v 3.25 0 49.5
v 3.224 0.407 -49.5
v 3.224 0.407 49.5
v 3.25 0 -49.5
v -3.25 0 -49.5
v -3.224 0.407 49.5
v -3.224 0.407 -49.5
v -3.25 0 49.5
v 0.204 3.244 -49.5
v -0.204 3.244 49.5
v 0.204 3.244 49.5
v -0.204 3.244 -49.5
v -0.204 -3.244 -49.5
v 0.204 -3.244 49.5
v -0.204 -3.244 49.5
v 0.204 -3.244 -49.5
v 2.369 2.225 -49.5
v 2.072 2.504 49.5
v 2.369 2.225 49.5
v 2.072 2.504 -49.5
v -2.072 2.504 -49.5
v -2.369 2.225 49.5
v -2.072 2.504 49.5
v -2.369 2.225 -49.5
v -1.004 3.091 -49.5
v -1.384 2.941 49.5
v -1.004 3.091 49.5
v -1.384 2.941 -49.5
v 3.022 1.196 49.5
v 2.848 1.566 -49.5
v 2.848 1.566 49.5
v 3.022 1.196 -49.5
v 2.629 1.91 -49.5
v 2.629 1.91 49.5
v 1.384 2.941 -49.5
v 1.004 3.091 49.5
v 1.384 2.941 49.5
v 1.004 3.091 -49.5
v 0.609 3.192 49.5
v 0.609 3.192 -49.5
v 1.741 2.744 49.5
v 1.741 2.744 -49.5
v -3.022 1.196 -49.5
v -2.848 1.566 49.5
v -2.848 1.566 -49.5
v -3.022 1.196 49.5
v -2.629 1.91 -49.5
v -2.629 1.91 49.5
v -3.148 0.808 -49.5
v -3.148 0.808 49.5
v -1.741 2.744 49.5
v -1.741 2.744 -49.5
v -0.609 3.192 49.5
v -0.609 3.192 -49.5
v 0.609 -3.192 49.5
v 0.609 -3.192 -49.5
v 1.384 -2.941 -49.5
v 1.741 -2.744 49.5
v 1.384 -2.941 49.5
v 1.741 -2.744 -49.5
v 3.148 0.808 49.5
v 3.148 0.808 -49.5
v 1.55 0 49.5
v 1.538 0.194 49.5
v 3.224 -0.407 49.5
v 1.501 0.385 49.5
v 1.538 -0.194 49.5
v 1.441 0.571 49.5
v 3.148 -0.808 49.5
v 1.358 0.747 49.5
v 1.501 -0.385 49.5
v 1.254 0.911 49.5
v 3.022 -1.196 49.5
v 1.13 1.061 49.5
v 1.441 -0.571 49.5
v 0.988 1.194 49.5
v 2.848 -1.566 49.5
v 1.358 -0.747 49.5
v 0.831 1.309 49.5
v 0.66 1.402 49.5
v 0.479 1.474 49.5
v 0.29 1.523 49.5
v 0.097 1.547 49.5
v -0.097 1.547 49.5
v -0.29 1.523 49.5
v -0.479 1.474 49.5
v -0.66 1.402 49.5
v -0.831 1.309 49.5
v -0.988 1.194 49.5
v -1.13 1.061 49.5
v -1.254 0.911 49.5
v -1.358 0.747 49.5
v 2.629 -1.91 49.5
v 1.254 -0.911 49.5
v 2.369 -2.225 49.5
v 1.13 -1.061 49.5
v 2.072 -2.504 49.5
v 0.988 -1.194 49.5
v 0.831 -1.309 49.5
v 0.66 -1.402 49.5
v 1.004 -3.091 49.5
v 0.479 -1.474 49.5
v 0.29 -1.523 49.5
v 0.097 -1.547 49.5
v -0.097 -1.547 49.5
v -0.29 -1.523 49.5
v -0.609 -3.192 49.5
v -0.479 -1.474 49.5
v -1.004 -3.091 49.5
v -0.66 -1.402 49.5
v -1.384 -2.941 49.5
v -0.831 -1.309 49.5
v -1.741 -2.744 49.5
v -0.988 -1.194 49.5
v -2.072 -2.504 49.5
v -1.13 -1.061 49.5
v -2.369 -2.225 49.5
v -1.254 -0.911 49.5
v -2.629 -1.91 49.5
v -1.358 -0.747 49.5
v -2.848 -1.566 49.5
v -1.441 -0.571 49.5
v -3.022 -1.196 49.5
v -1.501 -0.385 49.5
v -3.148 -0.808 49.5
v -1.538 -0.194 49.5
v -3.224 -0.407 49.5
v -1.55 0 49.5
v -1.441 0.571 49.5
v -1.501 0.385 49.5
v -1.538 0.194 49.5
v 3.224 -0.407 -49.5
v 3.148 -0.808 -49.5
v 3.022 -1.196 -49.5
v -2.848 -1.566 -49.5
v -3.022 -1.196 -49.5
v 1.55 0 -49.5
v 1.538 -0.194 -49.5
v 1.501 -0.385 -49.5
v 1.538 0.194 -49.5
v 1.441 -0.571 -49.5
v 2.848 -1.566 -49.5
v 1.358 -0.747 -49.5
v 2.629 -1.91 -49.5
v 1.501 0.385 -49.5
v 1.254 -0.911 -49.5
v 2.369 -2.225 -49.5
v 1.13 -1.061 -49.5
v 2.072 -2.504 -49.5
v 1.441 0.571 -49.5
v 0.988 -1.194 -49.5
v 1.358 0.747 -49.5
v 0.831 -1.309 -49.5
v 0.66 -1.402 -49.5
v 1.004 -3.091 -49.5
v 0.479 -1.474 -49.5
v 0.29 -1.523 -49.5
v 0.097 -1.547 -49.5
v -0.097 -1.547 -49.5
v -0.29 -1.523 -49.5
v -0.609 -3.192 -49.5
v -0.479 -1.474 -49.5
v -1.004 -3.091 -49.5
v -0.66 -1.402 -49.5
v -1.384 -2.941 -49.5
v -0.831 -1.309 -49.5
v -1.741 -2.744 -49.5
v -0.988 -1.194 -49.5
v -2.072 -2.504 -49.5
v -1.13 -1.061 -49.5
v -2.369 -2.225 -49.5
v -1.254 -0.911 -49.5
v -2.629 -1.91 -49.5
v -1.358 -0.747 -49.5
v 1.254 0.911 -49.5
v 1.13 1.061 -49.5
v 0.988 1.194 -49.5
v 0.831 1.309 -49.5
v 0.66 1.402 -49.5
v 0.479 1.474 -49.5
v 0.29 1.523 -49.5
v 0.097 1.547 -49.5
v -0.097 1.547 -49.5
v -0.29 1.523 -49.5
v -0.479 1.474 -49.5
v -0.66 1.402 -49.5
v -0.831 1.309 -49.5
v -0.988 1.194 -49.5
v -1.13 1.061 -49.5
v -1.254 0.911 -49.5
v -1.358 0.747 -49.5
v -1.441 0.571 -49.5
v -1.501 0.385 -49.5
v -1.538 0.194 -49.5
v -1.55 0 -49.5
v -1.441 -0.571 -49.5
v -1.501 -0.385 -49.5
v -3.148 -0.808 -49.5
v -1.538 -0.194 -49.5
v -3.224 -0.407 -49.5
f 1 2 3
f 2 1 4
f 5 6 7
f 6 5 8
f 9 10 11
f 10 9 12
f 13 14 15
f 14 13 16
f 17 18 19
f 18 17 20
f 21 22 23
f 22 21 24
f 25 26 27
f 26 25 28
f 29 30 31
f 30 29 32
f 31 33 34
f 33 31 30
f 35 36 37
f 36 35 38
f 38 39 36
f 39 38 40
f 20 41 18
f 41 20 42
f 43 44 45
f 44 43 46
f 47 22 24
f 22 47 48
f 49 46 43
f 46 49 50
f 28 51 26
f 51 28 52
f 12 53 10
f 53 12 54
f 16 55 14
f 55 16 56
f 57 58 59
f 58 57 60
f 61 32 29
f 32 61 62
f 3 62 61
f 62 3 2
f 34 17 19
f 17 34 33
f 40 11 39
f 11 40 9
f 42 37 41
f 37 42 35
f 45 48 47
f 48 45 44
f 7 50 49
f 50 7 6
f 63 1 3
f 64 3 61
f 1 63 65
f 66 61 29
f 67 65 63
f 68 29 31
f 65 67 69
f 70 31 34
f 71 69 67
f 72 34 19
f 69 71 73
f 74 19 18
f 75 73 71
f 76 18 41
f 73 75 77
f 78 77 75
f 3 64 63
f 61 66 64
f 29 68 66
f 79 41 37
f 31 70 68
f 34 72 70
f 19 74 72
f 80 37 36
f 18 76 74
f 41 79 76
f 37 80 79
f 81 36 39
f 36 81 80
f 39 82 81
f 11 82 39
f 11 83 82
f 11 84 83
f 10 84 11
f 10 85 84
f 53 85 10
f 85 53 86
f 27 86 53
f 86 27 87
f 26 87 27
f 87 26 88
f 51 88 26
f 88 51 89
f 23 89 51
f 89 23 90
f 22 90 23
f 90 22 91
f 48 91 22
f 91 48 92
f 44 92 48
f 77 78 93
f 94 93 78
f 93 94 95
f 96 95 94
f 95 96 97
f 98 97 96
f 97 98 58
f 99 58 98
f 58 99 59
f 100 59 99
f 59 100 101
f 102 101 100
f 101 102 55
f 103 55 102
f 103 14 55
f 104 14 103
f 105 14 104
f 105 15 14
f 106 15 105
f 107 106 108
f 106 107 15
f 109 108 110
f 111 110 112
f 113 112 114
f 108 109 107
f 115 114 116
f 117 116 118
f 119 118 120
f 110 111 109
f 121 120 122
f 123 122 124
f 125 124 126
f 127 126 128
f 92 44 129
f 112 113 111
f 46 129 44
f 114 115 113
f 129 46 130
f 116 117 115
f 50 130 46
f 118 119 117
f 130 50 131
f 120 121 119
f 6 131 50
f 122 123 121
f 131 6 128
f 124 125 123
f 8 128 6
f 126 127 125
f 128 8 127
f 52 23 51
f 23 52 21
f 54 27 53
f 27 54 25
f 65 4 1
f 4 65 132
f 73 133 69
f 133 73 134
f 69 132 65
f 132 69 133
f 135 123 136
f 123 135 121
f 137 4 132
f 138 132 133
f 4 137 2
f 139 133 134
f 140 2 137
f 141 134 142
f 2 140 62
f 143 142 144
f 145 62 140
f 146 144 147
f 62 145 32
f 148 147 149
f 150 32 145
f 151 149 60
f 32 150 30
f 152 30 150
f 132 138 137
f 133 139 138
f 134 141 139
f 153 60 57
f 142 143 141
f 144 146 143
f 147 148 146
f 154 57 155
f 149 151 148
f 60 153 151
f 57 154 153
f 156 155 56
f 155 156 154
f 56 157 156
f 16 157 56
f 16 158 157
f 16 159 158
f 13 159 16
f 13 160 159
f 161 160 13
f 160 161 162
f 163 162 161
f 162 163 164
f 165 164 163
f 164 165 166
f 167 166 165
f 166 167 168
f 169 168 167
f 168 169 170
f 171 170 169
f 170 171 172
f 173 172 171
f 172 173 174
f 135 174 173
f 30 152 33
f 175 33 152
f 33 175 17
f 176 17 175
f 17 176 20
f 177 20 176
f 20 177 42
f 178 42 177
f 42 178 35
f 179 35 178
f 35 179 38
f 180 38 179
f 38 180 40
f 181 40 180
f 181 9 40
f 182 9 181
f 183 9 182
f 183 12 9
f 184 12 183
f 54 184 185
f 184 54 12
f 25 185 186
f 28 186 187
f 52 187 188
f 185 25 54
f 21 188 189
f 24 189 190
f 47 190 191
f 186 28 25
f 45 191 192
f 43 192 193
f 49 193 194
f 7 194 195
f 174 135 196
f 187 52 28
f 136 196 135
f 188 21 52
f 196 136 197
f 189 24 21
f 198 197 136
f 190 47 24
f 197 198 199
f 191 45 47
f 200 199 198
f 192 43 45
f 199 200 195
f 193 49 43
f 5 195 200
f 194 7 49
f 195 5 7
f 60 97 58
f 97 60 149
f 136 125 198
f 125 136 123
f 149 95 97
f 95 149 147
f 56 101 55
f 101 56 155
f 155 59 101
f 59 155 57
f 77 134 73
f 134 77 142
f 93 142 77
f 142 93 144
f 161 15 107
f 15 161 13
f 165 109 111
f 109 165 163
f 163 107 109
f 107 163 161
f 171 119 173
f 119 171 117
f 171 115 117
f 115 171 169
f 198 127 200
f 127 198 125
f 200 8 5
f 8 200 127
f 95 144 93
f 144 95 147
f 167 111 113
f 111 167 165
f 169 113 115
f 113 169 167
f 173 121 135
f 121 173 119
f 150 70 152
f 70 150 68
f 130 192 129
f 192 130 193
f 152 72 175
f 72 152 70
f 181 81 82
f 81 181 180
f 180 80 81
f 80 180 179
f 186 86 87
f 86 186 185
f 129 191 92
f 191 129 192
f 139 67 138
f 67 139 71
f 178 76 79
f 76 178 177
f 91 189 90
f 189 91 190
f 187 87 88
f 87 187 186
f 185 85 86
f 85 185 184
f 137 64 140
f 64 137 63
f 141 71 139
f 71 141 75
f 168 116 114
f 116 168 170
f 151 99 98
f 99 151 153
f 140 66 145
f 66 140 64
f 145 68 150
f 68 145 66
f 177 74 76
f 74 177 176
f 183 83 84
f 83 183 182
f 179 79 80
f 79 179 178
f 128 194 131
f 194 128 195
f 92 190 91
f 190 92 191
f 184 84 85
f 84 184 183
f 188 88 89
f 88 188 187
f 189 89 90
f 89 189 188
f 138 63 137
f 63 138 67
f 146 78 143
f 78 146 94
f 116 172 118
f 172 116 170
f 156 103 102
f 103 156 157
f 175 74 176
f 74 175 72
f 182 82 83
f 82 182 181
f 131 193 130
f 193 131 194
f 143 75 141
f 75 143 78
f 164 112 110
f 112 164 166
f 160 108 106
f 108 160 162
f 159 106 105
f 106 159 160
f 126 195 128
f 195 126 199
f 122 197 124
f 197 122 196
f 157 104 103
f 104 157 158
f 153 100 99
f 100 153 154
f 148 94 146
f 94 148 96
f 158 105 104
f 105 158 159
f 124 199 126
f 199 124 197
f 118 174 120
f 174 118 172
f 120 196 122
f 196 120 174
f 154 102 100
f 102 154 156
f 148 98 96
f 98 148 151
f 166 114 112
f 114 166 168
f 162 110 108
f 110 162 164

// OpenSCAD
$fn = 50;


difference() {
	union() {
		translate(v = [0, 0, -49.5000000000]) {
			cylinder(h = 99, r = 3.2500000000);
		}
	}
	union() {
		translate(v = [0, 0, -100.0000000000]) {
			cylinder(h = 200, r = 1.5500000000);
		}
	}
}
